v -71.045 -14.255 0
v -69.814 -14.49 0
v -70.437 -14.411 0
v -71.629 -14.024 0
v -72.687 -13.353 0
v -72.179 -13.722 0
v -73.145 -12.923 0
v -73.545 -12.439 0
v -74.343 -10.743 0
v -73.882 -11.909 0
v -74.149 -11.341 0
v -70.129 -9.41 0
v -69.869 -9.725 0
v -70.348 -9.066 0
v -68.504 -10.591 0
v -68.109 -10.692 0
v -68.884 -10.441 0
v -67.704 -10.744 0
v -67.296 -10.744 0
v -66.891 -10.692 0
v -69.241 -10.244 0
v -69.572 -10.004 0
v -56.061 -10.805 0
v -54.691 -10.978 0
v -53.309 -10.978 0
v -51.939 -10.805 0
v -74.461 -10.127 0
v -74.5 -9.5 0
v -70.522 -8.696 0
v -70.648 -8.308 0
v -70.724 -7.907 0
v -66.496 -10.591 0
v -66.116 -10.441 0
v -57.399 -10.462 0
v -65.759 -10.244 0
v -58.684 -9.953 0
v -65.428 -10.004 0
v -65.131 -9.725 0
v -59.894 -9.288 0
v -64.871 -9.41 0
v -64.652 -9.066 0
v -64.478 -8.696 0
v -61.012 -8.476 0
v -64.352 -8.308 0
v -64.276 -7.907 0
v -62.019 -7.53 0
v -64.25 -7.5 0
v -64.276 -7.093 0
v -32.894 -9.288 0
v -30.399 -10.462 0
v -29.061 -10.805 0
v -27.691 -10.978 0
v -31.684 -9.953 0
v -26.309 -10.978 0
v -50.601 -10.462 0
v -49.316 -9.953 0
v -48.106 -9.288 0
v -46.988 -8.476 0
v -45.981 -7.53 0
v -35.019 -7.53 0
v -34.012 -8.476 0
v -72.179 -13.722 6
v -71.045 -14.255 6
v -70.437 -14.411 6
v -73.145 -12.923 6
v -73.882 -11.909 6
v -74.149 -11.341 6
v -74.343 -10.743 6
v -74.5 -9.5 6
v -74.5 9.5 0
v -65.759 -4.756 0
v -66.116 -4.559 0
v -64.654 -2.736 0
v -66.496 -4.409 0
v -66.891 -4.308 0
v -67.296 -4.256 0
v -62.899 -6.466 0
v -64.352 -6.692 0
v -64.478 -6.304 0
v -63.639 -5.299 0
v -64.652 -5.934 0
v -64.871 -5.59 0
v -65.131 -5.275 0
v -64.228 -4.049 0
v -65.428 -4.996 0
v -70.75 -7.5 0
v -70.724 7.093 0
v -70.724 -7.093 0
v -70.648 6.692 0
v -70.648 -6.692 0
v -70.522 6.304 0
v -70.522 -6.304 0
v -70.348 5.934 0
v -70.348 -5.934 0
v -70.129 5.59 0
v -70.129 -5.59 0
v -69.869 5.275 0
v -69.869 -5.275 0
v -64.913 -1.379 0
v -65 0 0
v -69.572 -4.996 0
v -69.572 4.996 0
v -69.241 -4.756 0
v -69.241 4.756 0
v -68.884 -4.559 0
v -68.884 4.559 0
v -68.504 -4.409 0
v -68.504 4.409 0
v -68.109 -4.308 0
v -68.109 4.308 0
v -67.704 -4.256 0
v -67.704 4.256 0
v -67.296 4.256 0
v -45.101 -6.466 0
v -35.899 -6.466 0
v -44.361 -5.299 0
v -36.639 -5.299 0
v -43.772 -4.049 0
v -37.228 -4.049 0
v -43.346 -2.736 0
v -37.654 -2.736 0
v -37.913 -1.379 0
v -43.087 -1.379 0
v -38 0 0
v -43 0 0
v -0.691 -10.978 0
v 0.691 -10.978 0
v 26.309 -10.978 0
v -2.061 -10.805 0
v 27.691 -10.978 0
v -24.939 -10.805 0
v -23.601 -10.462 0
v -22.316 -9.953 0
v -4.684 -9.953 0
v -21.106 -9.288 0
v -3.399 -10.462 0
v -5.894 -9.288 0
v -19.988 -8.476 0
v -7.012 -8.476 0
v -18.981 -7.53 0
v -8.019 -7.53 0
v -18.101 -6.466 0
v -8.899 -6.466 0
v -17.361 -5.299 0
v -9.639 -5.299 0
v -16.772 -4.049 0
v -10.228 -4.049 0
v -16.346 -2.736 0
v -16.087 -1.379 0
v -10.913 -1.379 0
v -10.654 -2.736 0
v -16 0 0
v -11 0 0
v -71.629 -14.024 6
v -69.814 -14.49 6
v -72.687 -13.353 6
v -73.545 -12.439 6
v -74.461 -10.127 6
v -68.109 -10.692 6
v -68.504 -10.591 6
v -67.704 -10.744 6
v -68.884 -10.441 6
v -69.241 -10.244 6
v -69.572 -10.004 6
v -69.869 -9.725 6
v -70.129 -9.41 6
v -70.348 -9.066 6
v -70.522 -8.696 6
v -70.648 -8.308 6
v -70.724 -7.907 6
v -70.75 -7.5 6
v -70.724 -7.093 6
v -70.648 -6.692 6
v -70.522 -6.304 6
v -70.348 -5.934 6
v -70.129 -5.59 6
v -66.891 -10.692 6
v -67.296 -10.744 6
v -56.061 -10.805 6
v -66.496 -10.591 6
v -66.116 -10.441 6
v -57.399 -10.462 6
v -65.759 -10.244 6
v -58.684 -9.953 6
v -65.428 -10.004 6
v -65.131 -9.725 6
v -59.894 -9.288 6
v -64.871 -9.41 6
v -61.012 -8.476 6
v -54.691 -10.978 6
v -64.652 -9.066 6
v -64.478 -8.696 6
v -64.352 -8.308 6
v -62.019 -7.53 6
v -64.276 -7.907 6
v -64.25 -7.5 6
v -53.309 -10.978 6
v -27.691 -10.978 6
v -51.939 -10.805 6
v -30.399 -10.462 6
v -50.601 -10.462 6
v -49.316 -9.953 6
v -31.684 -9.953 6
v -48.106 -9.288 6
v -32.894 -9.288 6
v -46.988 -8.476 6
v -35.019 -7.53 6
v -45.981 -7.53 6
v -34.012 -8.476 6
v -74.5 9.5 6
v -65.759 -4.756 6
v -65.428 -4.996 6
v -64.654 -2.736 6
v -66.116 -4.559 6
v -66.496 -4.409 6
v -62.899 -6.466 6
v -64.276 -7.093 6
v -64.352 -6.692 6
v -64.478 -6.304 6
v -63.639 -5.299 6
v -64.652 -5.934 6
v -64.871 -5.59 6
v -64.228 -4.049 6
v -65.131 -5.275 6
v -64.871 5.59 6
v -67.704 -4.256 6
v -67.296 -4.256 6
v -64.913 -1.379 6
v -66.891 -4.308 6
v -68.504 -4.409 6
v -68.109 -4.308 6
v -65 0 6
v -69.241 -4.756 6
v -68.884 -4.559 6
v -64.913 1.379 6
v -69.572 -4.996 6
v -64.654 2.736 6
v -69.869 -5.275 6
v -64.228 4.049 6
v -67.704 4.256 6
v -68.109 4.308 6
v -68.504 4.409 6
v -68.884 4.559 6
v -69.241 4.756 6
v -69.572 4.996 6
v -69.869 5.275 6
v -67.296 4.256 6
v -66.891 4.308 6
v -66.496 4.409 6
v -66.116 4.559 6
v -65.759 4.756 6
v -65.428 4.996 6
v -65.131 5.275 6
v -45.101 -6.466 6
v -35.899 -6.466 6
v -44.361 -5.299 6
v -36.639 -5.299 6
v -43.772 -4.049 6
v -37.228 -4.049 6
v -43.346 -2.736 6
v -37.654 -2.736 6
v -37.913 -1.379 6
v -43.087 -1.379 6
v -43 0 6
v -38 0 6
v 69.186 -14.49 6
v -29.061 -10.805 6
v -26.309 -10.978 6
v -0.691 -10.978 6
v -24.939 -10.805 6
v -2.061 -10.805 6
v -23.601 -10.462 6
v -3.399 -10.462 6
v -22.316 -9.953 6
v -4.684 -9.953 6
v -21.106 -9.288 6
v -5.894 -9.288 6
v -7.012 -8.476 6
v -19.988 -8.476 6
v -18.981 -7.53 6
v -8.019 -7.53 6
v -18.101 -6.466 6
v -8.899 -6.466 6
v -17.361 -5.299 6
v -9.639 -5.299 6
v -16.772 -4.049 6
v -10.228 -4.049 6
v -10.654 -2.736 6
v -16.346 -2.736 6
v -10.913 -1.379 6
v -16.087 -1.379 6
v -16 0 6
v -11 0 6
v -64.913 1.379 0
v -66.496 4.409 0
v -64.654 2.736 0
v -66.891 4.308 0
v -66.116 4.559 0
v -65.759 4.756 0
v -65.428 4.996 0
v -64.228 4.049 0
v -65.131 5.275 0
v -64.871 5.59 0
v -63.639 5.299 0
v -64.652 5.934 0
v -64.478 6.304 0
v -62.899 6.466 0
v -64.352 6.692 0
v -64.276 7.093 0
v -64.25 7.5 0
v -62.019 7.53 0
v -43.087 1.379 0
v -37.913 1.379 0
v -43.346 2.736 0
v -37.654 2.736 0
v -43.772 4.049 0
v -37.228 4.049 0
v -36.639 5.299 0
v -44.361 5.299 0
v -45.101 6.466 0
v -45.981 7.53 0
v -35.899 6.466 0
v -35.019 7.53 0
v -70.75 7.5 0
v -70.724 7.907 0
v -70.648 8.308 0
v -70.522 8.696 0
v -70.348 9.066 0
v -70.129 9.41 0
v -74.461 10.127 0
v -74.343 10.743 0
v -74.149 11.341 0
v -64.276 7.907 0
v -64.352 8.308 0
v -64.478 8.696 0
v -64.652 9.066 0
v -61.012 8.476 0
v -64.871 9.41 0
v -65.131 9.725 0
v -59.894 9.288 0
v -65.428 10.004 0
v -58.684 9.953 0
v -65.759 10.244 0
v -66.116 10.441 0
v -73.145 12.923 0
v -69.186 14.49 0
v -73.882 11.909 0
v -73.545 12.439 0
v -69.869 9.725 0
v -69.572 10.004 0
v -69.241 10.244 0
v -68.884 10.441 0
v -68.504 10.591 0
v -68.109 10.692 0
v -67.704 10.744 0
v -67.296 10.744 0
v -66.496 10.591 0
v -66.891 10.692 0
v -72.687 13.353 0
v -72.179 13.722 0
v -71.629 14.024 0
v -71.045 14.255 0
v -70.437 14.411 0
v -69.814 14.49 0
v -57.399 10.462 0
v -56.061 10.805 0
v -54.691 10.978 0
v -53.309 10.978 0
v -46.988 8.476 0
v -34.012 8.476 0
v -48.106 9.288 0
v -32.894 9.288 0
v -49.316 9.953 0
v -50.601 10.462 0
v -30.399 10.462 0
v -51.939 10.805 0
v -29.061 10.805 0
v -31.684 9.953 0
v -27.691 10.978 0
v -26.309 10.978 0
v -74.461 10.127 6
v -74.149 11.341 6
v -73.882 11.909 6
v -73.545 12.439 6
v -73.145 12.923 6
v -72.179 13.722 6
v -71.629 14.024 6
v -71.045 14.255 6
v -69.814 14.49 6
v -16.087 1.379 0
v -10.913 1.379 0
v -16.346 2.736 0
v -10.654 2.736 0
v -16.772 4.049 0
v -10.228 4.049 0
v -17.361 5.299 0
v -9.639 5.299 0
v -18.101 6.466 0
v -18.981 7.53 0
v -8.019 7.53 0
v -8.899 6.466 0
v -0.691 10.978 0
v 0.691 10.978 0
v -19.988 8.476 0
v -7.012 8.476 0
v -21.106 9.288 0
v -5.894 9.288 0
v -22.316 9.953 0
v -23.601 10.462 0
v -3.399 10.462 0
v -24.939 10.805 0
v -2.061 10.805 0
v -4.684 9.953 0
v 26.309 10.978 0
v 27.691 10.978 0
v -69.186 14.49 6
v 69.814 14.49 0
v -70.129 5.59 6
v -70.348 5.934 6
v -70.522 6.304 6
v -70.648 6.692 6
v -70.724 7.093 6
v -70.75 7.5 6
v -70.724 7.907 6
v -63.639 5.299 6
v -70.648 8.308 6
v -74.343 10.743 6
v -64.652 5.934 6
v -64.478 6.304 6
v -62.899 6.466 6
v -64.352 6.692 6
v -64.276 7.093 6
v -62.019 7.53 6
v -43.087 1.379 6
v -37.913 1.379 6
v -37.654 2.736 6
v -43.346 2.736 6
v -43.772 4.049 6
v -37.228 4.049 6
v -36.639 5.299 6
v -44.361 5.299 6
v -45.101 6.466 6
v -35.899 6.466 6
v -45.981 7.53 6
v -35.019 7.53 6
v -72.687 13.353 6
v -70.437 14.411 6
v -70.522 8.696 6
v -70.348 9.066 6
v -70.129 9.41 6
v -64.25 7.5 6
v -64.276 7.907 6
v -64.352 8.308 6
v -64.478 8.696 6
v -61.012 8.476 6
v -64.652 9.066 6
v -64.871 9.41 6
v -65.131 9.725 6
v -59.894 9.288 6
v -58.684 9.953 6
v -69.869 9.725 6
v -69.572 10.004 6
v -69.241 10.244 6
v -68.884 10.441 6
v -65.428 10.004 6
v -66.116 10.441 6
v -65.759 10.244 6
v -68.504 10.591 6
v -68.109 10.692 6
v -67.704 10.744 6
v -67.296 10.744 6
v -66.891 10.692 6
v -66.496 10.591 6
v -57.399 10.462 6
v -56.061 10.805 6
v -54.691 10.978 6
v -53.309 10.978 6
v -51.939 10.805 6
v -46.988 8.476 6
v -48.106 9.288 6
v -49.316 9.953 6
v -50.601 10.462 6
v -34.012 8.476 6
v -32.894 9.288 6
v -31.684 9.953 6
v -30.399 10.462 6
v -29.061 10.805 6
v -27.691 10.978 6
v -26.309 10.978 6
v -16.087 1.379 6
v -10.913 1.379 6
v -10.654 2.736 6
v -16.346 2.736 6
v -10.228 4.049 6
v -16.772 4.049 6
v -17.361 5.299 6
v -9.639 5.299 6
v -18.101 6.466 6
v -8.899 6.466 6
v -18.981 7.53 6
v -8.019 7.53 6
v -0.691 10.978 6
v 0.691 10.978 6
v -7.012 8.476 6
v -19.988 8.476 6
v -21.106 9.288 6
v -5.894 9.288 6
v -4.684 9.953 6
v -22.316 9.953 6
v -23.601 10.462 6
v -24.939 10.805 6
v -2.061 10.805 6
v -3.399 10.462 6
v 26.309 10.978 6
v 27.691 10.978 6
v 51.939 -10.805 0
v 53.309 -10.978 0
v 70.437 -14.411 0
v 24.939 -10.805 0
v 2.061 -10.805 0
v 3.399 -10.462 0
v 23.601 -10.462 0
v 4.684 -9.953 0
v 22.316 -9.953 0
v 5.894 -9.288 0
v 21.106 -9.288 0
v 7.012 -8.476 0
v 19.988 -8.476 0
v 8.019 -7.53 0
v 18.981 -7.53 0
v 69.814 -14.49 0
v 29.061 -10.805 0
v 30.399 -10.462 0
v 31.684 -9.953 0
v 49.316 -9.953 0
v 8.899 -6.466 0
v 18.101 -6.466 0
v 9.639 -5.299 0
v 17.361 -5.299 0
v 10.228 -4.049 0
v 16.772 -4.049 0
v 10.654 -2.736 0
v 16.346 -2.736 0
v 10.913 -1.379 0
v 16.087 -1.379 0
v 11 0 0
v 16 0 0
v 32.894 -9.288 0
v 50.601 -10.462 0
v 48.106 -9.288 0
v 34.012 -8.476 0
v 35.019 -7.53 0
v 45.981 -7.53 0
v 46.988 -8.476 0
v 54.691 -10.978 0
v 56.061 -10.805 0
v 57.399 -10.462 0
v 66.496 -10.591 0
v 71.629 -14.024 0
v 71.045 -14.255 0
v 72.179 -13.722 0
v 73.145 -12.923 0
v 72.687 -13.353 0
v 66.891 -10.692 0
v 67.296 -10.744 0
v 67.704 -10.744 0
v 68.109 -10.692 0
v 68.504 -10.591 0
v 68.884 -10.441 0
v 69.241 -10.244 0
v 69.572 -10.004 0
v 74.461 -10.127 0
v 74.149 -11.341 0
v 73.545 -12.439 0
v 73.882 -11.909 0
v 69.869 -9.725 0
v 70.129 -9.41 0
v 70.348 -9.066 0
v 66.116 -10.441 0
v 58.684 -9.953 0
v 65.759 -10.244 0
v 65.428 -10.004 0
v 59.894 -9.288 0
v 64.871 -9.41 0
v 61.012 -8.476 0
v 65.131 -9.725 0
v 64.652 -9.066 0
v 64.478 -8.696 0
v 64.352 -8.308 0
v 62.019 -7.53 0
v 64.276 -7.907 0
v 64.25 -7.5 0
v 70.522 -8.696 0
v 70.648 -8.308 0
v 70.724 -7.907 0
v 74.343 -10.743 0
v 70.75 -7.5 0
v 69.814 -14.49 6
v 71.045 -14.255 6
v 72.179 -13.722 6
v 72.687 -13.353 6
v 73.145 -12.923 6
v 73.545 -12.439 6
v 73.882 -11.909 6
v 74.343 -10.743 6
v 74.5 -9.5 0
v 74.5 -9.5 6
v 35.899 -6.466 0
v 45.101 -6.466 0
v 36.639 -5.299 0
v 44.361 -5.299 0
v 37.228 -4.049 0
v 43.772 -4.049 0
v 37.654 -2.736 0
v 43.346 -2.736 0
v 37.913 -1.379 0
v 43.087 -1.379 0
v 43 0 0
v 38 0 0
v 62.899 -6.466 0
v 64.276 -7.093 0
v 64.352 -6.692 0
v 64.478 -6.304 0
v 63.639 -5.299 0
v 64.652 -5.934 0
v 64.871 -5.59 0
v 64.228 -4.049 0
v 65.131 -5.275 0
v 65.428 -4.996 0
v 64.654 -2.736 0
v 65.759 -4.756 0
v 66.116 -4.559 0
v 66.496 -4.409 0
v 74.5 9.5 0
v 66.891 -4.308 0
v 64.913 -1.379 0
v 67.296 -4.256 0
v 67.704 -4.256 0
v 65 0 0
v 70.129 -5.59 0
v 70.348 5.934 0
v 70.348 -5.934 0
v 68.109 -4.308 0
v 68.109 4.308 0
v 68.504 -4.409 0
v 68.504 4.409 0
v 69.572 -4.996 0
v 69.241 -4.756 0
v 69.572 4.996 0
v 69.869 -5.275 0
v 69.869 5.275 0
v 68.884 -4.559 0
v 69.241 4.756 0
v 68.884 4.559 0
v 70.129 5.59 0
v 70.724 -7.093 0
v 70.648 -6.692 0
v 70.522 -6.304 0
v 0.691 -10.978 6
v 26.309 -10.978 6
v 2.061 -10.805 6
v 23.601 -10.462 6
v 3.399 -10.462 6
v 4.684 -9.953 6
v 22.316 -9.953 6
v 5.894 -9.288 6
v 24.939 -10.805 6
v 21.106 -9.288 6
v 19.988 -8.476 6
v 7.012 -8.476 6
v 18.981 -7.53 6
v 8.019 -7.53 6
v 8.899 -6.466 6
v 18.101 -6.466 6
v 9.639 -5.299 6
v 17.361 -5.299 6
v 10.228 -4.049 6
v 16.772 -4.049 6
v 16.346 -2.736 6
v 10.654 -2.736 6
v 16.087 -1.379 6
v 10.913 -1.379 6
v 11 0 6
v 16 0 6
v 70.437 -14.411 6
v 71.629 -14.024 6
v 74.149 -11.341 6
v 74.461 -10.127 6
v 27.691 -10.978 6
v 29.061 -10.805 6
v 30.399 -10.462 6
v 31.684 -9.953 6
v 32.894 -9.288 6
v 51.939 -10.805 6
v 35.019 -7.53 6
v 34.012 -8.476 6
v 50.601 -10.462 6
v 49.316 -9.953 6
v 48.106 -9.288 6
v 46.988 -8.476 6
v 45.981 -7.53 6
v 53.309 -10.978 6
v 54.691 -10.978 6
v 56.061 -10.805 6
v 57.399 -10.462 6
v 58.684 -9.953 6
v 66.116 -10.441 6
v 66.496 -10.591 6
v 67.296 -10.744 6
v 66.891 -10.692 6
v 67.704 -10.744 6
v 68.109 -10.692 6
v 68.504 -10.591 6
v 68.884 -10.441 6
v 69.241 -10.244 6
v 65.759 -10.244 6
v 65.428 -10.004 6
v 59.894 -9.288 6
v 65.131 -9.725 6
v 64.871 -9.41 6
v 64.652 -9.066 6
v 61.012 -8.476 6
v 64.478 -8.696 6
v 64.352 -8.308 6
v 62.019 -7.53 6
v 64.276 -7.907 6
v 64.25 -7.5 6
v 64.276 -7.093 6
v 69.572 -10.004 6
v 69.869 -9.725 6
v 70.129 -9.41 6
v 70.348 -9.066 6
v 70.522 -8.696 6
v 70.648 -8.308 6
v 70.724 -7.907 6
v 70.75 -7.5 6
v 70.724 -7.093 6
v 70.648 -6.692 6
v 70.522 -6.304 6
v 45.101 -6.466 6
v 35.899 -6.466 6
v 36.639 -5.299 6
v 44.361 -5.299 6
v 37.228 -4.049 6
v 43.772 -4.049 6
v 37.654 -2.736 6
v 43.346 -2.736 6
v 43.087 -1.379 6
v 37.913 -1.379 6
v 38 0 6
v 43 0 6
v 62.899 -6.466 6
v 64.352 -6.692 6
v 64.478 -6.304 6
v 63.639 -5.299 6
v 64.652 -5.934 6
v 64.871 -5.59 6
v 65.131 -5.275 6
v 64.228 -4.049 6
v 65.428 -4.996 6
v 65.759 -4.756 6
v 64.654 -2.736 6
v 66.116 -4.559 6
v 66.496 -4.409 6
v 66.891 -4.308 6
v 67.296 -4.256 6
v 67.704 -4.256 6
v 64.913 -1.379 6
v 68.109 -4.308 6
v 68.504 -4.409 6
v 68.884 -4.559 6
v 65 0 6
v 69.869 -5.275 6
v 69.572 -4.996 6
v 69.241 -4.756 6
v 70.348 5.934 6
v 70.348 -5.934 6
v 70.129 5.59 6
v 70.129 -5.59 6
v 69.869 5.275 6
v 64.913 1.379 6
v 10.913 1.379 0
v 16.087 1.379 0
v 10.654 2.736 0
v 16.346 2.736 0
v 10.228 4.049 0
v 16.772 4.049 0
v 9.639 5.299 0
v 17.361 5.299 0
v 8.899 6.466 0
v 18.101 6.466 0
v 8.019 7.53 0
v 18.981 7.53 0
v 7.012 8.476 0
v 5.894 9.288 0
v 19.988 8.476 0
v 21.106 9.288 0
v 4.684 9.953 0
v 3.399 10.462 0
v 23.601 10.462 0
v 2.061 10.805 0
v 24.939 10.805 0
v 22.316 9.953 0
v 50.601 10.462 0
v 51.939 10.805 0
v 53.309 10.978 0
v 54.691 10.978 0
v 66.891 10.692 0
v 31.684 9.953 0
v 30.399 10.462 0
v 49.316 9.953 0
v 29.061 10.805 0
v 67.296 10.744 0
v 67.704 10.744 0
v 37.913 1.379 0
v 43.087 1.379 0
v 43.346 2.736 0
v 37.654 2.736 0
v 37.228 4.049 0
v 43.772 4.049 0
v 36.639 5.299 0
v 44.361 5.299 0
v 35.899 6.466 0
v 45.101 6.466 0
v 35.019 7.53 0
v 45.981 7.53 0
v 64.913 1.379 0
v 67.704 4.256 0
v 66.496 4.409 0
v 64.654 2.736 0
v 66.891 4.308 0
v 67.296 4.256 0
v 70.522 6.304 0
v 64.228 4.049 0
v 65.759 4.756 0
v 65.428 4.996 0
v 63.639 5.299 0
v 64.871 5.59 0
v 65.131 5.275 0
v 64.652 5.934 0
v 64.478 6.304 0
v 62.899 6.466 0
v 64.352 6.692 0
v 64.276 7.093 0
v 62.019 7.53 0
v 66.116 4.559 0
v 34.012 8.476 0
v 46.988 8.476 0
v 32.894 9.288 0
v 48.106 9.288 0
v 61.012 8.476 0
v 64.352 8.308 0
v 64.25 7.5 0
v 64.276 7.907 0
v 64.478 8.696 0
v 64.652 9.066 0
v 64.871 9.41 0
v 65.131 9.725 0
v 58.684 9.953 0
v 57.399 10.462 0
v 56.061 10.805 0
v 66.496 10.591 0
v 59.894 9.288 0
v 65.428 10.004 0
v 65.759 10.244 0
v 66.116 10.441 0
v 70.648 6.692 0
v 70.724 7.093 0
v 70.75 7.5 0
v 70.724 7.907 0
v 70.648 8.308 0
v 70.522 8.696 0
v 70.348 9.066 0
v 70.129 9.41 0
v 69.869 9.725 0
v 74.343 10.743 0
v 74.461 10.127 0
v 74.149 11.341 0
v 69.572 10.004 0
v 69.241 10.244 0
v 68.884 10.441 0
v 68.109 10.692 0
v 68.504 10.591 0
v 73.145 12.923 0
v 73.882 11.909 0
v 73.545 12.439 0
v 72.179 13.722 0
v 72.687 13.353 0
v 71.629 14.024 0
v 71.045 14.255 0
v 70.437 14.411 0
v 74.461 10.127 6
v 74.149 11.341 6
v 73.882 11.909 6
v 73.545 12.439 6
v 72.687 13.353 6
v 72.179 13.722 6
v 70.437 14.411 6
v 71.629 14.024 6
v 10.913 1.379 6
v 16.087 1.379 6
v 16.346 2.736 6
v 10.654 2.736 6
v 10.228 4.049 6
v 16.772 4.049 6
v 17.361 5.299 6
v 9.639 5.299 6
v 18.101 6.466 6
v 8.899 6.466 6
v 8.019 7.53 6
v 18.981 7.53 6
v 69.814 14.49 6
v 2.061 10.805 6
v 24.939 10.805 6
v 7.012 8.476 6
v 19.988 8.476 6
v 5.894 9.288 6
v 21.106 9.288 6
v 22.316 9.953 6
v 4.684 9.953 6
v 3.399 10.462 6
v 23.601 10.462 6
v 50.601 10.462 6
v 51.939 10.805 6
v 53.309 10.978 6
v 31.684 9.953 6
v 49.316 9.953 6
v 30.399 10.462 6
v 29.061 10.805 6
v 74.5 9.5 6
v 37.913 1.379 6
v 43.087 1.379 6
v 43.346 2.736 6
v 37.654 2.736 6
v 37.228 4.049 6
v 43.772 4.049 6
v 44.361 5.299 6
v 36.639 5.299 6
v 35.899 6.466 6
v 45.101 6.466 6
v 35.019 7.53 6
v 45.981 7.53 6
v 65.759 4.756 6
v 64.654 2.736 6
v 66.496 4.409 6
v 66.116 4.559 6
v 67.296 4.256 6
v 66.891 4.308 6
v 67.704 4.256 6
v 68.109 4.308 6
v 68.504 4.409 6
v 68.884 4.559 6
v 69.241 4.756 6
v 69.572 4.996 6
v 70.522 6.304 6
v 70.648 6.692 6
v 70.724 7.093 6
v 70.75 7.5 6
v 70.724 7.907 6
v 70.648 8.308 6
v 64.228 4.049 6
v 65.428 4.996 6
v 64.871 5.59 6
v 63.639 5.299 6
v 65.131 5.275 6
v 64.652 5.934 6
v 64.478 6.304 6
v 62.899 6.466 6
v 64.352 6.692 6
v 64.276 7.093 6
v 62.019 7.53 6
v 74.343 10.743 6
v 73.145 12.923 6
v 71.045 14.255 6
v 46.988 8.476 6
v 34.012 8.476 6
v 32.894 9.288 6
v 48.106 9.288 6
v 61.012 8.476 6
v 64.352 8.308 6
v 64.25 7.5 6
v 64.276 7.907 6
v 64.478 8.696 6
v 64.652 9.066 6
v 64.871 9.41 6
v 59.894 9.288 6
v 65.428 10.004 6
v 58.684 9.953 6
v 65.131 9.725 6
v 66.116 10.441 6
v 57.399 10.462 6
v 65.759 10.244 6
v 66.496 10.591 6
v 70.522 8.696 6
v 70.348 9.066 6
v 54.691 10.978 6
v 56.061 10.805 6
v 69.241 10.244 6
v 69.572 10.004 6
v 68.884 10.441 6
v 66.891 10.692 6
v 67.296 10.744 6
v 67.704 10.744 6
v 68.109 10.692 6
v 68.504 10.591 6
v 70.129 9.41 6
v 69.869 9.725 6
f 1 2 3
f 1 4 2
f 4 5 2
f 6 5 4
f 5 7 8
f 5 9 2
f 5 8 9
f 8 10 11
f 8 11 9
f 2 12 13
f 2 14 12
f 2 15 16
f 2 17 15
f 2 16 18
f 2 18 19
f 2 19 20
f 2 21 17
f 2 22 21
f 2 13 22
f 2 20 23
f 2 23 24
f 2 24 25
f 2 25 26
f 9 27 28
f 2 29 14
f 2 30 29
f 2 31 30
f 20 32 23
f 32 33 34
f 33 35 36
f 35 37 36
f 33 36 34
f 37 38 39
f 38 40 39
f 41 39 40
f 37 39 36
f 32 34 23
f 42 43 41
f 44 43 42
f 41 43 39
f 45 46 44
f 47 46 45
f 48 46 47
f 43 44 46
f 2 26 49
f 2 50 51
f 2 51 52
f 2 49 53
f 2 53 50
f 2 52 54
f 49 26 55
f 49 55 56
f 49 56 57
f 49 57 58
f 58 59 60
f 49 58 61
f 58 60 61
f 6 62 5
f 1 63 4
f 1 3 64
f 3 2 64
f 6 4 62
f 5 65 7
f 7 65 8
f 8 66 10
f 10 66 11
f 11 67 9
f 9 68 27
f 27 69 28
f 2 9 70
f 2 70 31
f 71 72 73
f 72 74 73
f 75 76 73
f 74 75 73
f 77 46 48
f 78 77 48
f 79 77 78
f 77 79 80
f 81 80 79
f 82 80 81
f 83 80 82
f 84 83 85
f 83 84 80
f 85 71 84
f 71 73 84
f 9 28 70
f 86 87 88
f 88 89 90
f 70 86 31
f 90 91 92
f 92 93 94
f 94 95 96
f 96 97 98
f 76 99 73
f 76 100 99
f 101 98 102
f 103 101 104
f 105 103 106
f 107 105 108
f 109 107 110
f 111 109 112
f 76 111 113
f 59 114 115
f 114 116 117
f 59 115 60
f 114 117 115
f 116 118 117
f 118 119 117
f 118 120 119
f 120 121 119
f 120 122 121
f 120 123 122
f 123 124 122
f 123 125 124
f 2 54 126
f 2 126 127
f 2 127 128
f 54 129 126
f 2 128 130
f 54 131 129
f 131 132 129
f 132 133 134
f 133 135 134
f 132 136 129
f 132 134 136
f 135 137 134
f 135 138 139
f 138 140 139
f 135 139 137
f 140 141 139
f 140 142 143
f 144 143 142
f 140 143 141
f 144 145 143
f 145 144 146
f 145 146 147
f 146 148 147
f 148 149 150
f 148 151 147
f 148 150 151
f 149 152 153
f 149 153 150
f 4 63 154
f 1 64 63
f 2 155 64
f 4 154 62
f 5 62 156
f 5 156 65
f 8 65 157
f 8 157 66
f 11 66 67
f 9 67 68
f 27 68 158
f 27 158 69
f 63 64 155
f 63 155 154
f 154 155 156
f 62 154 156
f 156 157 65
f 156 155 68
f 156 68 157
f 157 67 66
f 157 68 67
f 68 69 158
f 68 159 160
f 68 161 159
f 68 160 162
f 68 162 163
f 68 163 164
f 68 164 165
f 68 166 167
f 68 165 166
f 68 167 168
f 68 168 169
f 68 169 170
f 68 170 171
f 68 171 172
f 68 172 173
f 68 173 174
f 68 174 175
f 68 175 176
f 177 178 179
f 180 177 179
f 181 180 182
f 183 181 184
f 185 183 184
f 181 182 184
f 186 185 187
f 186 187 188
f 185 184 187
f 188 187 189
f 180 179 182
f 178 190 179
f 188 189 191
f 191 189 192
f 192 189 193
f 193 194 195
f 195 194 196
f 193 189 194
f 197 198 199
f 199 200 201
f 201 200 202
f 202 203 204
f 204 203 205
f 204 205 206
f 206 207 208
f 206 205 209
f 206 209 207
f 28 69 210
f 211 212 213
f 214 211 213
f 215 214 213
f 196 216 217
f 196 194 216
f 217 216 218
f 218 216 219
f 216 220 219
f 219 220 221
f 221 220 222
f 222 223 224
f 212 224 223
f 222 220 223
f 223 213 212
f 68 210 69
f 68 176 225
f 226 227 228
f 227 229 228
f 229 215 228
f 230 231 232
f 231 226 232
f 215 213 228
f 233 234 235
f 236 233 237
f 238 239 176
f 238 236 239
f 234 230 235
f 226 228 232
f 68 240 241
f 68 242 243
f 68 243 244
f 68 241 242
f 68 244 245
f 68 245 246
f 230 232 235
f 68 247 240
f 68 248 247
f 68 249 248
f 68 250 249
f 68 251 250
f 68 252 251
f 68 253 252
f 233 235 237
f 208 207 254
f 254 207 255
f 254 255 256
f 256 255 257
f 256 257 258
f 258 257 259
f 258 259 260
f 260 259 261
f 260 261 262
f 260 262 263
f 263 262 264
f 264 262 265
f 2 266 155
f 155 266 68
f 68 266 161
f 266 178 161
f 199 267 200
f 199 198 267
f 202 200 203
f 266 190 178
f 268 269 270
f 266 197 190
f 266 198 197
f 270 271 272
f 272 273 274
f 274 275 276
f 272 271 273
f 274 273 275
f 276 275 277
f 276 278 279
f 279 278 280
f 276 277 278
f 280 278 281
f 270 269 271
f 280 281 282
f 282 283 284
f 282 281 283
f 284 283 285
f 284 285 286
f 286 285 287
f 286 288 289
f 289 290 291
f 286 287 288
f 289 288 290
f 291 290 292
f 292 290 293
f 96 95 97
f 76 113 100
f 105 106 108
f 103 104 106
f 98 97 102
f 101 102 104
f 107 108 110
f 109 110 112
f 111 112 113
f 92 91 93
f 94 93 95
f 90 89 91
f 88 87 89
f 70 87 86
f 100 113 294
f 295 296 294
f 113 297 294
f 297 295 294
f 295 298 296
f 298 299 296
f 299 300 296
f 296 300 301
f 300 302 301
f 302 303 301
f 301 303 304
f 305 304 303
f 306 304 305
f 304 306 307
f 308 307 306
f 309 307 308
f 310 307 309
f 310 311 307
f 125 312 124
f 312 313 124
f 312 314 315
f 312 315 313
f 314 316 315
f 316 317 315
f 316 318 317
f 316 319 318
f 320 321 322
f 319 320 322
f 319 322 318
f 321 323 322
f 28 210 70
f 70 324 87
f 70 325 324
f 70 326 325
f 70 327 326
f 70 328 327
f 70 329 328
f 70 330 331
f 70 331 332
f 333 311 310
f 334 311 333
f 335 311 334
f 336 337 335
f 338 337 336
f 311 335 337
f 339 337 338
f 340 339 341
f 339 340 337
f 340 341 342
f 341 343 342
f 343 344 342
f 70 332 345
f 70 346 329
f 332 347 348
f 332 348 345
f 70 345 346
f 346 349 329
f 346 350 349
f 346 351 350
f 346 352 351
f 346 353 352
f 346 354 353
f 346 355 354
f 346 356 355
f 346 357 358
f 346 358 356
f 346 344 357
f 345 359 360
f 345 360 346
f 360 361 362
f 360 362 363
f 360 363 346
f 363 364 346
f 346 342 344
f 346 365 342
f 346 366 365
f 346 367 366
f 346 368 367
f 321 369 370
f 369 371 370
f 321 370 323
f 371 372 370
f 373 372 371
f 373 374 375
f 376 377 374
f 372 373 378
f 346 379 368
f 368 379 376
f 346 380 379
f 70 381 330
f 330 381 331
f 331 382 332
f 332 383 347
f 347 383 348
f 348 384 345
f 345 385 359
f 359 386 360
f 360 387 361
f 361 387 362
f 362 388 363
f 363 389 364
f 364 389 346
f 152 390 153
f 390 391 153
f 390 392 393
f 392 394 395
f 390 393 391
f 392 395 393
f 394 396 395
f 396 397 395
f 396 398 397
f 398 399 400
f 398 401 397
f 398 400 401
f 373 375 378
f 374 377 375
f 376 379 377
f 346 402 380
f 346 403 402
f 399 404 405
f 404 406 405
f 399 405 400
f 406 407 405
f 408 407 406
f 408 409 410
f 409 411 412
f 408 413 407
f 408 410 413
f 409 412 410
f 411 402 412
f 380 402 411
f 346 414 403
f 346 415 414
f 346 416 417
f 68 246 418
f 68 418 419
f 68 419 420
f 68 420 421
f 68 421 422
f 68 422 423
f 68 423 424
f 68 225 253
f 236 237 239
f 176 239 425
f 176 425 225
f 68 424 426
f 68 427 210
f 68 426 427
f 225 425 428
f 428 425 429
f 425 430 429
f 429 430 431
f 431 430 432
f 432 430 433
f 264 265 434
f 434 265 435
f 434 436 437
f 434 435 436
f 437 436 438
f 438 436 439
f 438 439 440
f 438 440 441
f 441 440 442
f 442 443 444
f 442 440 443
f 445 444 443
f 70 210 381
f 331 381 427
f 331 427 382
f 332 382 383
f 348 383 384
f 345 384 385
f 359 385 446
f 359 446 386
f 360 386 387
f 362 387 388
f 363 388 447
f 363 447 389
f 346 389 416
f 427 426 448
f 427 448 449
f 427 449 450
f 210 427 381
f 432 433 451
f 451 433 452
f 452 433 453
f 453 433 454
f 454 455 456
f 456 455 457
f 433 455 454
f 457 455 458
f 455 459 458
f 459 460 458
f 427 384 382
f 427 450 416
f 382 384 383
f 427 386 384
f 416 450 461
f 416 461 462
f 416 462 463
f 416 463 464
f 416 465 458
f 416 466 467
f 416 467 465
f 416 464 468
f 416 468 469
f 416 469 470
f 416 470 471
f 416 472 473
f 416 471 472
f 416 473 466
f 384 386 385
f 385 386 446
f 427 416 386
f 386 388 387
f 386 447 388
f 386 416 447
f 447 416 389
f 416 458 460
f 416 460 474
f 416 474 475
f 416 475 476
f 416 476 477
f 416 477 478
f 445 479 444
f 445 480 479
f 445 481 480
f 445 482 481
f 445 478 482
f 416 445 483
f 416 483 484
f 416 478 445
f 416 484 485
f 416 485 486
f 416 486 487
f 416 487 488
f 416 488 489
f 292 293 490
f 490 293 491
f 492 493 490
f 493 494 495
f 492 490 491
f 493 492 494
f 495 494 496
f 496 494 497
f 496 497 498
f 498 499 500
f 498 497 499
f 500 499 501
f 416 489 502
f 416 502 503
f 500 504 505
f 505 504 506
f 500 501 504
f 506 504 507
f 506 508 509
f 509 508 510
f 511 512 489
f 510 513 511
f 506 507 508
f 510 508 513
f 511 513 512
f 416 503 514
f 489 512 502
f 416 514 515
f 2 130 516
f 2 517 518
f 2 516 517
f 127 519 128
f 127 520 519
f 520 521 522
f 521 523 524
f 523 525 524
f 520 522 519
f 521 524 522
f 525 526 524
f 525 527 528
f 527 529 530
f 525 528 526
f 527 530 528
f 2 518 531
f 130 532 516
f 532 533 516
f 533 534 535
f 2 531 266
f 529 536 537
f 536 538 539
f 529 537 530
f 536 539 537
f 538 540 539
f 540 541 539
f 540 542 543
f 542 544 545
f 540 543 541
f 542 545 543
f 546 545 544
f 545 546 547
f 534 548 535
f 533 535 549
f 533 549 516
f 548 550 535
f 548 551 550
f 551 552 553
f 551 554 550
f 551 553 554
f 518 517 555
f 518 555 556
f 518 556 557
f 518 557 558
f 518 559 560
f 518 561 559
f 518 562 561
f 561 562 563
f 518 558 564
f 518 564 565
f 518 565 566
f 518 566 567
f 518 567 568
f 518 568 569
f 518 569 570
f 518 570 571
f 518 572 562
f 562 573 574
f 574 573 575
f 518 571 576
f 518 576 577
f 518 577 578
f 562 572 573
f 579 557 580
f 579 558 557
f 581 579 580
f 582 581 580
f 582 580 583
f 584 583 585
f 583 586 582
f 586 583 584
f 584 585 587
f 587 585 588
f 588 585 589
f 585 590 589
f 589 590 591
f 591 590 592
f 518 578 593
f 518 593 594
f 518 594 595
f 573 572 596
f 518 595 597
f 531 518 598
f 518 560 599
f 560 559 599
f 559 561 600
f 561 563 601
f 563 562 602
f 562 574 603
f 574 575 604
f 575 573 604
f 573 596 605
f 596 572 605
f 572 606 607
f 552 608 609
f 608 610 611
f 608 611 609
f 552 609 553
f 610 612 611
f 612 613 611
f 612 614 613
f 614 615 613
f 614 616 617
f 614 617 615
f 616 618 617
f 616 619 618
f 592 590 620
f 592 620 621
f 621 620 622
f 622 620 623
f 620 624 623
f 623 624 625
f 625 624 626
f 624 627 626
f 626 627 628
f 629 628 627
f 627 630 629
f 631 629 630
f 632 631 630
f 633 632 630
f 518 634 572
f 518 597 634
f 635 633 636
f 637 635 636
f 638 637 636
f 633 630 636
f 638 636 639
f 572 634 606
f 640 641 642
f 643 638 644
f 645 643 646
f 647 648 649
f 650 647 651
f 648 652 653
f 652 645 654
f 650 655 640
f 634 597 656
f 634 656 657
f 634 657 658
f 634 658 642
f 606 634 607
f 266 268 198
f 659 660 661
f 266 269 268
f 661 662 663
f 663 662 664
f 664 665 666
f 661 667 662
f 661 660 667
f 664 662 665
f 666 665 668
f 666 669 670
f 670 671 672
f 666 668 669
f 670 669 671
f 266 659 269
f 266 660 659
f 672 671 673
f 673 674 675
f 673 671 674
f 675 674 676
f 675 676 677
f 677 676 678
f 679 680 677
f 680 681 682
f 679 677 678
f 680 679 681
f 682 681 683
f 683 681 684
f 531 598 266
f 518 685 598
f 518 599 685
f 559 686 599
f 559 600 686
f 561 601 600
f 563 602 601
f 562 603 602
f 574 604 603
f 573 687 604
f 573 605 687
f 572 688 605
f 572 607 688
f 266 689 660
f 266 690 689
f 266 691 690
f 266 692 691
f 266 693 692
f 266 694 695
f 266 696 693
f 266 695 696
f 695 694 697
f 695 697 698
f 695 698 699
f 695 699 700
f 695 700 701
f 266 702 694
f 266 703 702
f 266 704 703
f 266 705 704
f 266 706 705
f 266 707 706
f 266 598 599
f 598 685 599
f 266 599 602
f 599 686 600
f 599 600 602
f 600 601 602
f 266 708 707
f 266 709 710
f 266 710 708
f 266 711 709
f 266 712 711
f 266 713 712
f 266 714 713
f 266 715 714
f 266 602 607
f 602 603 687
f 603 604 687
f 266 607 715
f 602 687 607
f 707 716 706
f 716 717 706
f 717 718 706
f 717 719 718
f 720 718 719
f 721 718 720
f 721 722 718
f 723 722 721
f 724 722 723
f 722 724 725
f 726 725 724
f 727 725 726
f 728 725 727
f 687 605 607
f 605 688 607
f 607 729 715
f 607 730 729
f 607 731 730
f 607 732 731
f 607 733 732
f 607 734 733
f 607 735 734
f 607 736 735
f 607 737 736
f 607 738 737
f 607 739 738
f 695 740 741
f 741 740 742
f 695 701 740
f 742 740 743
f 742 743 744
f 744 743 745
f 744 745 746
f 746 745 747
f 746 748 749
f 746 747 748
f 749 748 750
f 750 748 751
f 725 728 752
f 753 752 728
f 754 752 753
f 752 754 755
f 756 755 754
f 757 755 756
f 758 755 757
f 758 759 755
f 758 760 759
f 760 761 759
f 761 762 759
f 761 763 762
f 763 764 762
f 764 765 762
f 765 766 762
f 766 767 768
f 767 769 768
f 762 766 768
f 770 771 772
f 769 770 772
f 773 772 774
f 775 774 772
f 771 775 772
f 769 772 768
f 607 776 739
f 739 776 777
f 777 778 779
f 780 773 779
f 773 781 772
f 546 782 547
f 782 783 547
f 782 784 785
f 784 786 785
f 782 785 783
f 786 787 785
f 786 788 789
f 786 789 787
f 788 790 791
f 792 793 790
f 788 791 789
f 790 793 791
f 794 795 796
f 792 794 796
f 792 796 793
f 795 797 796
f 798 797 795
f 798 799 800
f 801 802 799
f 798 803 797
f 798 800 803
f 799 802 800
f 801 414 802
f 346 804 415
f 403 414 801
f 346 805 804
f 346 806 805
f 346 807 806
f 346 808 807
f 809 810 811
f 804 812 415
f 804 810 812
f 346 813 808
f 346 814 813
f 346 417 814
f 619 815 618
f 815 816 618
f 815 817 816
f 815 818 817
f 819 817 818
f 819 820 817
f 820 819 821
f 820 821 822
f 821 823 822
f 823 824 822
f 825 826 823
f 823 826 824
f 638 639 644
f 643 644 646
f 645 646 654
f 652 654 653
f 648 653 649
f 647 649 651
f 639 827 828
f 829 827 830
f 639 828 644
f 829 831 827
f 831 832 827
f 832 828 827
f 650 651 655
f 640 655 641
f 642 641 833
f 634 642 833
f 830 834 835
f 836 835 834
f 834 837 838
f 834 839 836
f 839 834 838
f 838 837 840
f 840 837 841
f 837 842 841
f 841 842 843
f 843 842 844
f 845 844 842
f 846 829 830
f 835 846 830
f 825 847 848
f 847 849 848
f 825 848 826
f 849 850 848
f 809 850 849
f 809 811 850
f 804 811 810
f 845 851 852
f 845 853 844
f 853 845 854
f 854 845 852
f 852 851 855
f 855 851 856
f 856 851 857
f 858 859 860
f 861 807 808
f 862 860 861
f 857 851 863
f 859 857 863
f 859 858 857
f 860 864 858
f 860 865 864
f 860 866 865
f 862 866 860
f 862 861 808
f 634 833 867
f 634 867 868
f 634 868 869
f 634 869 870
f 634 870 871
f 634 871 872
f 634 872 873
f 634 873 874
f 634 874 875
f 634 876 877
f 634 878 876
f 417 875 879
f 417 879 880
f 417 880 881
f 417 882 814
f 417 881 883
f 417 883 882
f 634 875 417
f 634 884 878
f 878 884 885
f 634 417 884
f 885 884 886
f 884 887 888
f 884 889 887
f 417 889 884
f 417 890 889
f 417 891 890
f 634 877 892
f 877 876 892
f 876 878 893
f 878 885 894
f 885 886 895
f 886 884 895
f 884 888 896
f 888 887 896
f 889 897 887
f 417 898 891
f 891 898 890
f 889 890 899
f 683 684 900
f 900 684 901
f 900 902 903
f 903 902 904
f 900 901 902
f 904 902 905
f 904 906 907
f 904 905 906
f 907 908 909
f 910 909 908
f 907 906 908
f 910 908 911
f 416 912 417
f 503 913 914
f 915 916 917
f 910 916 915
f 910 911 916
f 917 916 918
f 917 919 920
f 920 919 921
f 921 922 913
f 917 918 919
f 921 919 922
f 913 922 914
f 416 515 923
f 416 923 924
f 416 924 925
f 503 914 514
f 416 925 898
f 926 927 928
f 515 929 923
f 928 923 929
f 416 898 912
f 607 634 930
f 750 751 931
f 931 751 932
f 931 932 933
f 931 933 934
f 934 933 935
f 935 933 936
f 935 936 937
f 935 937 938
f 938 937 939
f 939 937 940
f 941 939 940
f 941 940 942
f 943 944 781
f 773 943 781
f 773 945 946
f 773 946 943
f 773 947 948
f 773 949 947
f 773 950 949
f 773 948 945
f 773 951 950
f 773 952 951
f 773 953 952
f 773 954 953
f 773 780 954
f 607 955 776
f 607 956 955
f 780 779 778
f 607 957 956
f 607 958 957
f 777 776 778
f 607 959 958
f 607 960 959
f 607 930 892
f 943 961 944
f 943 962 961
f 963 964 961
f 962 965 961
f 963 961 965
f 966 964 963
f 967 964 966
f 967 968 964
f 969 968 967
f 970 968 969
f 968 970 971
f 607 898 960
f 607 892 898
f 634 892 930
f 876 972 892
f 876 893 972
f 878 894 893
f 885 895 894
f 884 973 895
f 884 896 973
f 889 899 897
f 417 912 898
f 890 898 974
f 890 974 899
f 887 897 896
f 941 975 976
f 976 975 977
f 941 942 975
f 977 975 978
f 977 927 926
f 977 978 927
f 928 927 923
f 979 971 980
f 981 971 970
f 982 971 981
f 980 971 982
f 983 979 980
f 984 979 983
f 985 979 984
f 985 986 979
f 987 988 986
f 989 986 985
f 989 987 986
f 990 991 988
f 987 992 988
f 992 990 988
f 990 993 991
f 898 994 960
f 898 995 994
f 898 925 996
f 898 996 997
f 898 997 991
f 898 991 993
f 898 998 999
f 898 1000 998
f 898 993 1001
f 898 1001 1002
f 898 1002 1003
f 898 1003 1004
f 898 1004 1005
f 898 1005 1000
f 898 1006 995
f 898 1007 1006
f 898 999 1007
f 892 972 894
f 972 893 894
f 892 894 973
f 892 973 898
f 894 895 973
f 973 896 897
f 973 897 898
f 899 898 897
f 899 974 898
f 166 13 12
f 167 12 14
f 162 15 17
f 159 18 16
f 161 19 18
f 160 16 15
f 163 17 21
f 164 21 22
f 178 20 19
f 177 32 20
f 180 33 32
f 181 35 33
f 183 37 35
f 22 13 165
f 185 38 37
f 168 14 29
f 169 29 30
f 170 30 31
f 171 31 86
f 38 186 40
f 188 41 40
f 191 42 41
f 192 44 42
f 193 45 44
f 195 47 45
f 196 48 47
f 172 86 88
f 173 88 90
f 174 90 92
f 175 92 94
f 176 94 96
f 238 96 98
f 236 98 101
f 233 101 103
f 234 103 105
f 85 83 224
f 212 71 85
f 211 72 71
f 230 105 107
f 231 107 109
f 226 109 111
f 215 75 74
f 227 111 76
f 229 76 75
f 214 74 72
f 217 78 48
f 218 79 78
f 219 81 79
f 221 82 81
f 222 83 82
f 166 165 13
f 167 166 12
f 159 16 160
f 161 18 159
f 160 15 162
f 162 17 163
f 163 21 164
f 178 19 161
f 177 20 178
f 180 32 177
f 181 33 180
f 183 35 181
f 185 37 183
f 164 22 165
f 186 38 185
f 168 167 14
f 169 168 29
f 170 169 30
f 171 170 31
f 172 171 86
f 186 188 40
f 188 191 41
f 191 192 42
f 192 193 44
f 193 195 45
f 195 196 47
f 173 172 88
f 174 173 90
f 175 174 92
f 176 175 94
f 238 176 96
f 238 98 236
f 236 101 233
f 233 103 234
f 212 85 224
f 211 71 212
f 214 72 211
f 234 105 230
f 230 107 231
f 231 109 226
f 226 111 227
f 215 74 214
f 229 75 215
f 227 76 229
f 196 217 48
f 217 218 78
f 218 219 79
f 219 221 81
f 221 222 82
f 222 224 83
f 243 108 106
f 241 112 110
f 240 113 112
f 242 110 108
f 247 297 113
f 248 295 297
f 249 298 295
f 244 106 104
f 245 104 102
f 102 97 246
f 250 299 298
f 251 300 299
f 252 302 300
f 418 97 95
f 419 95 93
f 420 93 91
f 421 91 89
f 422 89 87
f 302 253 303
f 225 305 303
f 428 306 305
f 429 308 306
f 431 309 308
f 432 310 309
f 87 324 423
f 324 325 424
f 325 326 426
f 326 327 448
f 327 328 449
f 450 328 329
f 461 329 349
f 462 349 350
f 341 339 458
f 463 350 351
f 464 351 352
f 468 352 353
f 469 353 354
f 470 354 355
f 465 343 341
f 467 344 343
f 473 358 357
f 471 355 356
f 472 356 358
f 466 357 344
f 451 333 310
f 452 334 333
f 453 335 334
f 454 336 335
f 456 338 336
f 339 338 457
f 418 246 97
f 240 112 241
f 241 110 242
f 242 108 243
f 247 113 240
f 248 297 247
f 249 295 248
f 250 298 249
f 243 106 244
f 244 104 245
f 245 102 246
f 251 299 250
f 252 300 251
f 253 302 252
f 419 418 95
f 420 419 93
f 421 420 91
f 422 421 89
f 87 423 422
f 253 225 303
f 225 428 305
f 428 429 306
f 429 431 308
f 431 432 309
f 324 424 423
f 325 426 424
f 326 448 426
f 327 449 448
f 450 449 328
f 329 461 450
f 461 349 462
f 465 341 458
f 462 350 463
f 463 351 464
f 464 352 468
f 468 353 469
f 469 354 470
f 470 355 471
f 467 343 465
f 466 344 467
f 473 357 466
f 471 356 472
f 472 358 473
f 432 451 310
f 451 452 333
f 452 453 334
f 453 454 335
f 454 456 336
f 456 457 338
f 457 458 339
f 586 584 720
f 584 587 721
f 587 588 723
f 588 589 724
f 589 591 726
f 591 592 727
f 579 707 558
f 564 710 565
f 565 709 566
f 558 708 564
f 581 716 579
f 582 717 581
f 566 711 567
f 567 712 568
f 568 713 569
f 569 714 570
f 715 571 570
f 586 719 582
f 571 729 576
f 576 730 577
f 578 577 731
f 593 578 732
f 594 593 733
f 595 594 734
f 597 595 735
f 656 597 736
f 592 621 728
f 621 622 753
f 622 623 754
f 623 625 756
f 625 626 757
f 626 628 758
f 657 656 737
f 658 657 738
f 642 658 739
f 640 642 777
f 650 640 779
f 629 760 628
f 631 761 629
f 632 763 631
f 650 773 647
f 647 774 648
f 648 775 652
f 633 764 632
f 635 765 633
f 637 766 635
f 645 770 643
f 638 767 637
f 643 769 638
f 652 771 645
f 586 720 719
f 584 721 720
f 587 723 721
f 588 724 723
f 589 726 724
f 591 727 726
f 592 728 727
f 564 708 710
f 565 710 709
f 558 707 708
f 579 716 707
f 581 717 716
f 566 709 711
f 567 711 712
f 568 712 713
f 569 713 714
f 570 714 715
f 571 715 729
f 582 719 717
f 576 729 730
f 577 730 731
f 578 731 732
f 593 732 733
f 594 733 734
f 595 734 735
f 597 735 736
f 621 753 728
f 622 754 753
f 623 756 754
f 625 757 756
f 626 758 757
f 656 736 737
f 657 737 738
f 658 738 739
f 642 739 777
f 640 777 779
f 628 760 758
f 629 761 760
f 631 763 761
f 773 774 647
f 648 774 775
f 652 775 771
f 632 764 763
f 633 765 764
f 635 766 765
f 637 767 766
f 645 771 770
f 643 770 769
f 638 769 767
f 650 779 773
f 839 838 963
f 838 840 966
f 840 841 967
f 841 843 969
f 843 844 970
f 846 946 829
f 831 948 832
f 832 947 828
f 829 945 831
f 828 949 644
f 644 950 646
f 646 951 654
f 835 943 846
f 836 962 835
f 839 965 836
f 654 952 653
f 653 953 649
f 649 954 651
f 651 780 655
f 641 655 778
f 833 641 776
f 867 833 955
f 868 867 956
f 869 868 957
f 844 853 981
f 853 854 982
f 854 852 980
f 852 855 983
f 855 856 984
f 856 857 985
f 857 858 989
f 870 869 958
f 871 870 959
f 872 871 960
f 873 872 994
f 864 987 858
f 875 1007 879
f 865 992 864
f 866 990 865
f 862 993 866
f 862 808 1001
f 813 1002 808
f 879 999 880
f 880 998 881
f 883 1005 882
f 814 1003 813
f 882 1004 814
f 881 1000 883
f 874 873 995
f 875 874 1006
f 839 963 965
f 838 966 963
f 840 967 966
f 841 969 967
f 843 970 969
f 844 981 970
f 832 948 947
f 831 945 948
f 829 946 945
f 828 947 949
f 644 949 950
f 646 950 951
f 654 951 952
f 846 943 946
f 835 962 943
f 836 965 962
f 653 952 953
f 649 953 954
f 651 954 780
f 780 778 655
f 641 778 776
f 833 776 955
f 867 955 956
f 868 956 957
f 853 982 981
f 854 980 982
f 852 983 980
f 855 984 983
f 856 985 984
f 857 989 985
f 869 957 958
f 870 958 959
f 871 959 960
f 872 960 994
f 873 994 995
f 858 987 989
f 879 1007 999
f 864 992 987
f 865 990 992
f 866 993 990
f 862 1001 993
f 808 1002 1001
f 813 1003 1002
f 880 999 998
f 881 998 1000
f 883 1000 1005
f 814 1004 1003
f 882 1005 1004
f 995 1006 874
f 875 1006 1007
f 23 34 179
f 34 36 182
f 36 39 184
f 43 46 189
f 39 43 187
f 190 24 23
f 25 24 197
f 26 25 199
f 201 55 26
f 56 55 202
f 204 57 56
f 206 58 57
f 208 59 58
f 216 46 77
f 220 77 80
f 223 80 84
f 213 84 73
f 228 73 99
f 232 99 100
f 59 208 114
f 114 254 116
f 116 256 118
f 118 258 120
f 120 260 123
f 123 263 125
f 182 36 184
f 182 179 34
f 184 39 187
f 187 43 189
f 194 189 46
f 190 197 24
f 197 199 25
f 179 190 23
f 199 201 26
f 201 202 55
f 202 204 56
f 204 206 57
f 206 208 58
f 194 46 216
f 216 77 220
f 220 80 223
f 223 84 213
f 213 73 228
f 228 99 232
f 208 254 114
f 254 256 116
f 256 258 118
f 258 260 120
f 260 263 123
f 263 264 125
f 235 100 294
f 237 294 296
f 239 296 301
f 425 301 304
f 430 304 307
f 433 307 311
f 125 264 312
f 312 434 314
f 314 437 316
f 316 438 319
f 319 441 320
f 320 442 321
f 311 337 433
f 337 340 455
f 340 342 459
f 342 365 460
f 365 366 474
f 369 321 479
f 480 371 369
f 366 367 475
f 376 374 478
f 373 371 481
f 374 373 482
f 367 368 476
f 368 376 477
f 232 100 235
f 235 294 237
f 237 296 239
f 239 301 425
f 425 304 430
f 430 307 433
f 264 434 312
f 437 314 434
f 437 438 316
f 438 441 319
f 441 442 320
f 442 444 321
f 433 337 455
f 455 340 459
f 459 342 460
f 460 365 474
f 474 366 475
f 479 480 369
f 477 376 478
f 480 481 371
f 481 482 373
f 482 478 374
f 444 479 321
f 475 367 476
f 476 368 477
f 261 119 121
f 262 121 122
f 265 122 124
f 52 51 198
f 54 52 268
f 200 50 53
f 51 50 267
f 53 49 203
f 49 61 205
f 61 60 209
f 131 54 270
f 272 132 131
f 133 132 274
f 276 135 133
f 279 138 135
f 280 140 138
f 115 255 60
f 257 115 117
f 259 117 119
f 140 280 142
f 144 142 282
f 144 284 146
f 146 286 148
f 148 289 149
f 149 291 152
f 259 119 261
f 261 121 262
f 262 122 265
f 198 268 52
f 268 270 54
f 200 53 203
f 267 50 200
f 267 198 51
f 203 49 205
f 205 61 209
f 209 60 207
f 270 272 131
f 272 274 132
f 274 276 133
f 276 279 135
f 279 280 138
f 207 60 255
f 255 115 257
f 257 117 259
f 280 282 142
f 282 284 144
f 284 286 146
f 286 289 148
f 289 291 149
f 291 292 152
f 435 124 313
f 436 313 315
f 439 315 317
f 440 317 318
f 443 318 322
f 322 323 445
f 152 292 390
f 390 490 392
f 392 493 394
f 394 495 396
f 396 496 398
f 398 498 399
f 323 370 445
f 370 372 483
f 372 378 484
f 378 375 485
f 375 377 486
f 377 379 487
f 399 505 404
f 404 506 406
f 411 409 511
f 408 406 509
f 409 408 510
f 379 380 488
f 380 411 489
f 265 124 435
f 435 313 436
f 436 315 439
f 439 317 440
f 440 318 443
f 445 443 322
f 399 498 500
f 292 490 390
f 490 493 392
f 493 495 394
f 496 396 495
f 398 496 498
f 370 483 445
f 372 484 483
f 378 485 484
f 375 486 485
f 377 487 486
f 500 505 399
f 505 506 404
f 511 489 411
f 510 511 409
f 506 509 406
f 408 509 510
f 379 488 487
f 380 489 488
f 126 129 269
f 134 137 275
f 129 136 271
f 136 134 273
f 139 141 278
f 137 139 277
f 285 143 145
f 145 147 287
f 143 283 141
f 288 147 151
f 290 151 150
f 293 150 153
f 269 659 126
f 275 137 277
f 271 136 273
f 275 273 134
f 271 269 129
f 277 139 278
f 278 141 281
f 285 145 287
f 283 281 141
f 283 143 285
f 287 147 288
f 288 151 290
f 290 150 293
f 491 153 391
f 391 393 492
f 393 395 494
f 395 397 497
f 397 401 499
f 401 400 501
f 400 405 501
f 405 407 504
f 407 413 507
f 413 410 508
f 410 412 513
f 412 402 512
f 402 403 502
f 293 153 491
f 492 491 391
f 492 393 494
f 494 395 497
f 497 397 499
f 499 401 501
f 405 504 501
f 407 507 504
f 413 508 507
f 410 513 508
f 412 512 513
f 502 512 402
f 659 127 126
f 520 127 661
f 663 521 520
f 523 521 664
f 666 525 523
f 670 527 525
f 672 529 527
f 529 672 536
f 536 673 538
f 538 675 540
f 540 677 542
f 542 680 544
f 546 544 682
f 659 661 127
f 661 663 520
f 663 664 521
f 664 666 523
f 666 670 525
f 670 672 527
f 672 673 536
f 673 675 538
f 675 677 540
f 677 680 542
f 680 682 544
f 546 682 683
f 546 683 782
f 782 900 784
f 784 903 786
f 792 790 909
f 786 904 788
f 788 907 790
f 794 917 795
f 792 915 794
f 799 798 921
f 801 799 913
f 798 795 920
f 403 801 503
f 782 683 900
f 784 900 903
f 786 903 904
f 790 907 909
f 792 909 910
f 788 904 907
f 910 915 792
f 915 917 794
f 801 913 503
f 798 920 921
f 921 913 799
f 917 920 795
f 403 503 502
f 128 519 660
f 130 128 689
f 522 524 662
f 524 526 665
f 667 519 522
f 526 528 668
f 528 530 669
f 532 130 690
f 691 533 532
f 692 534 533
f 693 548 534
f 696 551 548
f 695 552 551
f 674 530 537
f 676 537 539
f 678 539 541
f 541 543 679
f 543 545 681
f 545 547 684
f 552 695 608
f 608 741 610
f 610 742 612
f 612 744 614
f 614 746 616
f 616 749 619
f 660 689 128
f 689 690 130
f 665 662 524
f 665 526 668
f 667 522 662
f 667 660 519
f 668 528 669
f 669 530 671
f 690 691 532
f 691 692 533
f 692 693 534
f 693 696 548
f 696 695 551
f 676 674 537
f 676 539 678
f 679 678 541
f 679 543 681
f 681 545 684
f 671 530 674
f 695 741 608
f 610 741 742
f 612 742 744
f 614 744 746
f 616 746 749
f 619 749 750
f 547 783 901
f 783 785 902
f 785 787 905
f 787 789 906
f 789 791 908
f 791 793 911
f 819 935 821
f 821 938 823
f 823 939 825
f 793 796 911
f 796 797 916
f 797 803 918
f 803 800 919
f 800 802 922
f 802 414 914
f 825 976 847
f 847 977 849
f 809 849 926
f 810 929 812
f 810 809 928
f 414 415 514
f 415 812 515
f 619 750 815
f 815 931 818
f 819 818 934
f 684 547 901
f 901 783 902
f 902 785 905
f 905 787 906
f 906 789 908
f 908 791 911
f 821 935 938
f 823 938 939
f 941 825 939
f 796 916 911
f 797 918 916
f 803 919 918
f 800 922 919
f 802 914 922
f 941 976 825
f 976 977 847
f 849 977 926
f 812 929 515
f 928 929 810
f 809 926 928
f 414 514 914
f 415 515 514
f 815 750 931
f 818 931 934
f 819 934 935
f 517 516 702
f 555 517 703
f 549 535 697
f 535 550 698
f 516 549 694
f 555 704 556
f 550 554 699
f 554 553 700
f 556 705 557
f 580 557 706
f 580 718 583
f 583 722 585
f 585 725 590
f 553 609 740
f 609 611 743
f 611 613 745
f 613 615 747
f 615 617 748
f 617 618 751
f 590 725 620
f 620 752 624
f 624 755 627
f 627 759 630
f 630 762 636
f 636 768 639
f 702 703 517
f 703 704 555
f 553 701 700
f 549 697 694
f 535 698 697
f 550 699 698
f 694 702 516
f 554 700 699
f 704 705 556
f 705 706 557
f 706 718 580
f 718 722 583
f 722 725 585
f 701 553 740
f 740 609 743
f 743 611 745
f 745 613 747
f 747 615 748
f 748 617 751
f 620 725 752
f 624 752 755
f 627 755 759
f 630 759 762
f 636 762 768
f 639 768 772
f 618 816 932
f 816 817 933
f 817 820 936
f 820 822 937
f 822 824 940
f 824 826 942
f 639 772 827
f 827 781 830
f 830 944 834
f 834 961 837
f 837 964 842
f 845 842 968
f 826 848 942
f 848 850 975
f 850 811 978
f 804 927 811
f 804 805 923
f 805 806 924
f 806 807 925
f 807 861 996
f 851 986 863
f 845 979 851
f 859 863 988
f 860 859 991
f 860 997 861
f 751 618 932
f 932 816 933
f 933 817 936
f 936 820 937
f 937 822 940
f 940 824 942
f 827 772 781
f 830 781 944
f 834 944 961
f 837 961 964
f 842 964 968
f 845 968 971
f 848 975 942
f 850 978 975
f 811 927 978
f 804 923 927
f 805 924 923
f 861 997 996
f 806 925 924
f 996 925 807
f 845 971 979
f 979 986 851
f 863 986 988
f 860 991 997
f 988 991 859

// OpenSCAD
$fn = 50;

difference() {
	union() {
		hull() {
			translate(v = [-69.5, 9.5, 0]) {
				cylinder(h = 6, r = 5);
			}
			translate(v = [69.5, 9.5, 0]) {
				cylinder(h = 6, r = 5);
			}
			translate(v = [-69.5, -9.5, 0]) {
				cylinder(h = 6, r = 5);
			}
			translate(v = [69.5, -9.5, 0]) {
				cylinder(h = 6, r = 5);
			}
		}
	}
	union() {
		translate(v = [-67.5, -7.5, -100.0]) {
			cylinder(h = 200, r = 3.25);
		}
		translate(v = [-67.5, 7.5, -100.0]) {
			cylinder(h = 200, r = 3.25);
		}
		translate(v = [67.5, -7.5, -100.0]) {
			cylinder(h = 200, r = 3.25);
		}
		translate(v = [67.5, 7.5, -100.0]) {
			cylinder(h = 200, r = 3.25);
		}
		translate(v = [-67.5, -7.5, -100.0]) {
			cylinder(h = 200, r = 1.8);
		}
		translate(v = [-67.5, 7.5, -100.0]) {
			cylinder(h = 200, r = 1.8);
		}
		translate(v = [67.5, -7.5, -100.0]) {
			cylinder(h = 200, r = 1.8);
		}
		translate(v = [67.5, 7.5, -100.0]) {
			cylinder(h = 200, r = 1.8);
		}
		translate(v = [-54.0, 0, 0.0]) {
			cylinder(h = 6, r = 11.0);
		}
		translate(v = [-27.0, 0, 0.0]) {
			cylinder(h = 6, r = 11.0);
		}
		cylinder(h = 6, r = 11.0);
		translate(v = [27.0, 0, 0.0]) {
			cylinder(h = 6, r = 11.0);
		}
		translate(v = [54.0, 0, 0.0]) {
			cylinder(h = 6, r = 11.0);
		}
	}
}
